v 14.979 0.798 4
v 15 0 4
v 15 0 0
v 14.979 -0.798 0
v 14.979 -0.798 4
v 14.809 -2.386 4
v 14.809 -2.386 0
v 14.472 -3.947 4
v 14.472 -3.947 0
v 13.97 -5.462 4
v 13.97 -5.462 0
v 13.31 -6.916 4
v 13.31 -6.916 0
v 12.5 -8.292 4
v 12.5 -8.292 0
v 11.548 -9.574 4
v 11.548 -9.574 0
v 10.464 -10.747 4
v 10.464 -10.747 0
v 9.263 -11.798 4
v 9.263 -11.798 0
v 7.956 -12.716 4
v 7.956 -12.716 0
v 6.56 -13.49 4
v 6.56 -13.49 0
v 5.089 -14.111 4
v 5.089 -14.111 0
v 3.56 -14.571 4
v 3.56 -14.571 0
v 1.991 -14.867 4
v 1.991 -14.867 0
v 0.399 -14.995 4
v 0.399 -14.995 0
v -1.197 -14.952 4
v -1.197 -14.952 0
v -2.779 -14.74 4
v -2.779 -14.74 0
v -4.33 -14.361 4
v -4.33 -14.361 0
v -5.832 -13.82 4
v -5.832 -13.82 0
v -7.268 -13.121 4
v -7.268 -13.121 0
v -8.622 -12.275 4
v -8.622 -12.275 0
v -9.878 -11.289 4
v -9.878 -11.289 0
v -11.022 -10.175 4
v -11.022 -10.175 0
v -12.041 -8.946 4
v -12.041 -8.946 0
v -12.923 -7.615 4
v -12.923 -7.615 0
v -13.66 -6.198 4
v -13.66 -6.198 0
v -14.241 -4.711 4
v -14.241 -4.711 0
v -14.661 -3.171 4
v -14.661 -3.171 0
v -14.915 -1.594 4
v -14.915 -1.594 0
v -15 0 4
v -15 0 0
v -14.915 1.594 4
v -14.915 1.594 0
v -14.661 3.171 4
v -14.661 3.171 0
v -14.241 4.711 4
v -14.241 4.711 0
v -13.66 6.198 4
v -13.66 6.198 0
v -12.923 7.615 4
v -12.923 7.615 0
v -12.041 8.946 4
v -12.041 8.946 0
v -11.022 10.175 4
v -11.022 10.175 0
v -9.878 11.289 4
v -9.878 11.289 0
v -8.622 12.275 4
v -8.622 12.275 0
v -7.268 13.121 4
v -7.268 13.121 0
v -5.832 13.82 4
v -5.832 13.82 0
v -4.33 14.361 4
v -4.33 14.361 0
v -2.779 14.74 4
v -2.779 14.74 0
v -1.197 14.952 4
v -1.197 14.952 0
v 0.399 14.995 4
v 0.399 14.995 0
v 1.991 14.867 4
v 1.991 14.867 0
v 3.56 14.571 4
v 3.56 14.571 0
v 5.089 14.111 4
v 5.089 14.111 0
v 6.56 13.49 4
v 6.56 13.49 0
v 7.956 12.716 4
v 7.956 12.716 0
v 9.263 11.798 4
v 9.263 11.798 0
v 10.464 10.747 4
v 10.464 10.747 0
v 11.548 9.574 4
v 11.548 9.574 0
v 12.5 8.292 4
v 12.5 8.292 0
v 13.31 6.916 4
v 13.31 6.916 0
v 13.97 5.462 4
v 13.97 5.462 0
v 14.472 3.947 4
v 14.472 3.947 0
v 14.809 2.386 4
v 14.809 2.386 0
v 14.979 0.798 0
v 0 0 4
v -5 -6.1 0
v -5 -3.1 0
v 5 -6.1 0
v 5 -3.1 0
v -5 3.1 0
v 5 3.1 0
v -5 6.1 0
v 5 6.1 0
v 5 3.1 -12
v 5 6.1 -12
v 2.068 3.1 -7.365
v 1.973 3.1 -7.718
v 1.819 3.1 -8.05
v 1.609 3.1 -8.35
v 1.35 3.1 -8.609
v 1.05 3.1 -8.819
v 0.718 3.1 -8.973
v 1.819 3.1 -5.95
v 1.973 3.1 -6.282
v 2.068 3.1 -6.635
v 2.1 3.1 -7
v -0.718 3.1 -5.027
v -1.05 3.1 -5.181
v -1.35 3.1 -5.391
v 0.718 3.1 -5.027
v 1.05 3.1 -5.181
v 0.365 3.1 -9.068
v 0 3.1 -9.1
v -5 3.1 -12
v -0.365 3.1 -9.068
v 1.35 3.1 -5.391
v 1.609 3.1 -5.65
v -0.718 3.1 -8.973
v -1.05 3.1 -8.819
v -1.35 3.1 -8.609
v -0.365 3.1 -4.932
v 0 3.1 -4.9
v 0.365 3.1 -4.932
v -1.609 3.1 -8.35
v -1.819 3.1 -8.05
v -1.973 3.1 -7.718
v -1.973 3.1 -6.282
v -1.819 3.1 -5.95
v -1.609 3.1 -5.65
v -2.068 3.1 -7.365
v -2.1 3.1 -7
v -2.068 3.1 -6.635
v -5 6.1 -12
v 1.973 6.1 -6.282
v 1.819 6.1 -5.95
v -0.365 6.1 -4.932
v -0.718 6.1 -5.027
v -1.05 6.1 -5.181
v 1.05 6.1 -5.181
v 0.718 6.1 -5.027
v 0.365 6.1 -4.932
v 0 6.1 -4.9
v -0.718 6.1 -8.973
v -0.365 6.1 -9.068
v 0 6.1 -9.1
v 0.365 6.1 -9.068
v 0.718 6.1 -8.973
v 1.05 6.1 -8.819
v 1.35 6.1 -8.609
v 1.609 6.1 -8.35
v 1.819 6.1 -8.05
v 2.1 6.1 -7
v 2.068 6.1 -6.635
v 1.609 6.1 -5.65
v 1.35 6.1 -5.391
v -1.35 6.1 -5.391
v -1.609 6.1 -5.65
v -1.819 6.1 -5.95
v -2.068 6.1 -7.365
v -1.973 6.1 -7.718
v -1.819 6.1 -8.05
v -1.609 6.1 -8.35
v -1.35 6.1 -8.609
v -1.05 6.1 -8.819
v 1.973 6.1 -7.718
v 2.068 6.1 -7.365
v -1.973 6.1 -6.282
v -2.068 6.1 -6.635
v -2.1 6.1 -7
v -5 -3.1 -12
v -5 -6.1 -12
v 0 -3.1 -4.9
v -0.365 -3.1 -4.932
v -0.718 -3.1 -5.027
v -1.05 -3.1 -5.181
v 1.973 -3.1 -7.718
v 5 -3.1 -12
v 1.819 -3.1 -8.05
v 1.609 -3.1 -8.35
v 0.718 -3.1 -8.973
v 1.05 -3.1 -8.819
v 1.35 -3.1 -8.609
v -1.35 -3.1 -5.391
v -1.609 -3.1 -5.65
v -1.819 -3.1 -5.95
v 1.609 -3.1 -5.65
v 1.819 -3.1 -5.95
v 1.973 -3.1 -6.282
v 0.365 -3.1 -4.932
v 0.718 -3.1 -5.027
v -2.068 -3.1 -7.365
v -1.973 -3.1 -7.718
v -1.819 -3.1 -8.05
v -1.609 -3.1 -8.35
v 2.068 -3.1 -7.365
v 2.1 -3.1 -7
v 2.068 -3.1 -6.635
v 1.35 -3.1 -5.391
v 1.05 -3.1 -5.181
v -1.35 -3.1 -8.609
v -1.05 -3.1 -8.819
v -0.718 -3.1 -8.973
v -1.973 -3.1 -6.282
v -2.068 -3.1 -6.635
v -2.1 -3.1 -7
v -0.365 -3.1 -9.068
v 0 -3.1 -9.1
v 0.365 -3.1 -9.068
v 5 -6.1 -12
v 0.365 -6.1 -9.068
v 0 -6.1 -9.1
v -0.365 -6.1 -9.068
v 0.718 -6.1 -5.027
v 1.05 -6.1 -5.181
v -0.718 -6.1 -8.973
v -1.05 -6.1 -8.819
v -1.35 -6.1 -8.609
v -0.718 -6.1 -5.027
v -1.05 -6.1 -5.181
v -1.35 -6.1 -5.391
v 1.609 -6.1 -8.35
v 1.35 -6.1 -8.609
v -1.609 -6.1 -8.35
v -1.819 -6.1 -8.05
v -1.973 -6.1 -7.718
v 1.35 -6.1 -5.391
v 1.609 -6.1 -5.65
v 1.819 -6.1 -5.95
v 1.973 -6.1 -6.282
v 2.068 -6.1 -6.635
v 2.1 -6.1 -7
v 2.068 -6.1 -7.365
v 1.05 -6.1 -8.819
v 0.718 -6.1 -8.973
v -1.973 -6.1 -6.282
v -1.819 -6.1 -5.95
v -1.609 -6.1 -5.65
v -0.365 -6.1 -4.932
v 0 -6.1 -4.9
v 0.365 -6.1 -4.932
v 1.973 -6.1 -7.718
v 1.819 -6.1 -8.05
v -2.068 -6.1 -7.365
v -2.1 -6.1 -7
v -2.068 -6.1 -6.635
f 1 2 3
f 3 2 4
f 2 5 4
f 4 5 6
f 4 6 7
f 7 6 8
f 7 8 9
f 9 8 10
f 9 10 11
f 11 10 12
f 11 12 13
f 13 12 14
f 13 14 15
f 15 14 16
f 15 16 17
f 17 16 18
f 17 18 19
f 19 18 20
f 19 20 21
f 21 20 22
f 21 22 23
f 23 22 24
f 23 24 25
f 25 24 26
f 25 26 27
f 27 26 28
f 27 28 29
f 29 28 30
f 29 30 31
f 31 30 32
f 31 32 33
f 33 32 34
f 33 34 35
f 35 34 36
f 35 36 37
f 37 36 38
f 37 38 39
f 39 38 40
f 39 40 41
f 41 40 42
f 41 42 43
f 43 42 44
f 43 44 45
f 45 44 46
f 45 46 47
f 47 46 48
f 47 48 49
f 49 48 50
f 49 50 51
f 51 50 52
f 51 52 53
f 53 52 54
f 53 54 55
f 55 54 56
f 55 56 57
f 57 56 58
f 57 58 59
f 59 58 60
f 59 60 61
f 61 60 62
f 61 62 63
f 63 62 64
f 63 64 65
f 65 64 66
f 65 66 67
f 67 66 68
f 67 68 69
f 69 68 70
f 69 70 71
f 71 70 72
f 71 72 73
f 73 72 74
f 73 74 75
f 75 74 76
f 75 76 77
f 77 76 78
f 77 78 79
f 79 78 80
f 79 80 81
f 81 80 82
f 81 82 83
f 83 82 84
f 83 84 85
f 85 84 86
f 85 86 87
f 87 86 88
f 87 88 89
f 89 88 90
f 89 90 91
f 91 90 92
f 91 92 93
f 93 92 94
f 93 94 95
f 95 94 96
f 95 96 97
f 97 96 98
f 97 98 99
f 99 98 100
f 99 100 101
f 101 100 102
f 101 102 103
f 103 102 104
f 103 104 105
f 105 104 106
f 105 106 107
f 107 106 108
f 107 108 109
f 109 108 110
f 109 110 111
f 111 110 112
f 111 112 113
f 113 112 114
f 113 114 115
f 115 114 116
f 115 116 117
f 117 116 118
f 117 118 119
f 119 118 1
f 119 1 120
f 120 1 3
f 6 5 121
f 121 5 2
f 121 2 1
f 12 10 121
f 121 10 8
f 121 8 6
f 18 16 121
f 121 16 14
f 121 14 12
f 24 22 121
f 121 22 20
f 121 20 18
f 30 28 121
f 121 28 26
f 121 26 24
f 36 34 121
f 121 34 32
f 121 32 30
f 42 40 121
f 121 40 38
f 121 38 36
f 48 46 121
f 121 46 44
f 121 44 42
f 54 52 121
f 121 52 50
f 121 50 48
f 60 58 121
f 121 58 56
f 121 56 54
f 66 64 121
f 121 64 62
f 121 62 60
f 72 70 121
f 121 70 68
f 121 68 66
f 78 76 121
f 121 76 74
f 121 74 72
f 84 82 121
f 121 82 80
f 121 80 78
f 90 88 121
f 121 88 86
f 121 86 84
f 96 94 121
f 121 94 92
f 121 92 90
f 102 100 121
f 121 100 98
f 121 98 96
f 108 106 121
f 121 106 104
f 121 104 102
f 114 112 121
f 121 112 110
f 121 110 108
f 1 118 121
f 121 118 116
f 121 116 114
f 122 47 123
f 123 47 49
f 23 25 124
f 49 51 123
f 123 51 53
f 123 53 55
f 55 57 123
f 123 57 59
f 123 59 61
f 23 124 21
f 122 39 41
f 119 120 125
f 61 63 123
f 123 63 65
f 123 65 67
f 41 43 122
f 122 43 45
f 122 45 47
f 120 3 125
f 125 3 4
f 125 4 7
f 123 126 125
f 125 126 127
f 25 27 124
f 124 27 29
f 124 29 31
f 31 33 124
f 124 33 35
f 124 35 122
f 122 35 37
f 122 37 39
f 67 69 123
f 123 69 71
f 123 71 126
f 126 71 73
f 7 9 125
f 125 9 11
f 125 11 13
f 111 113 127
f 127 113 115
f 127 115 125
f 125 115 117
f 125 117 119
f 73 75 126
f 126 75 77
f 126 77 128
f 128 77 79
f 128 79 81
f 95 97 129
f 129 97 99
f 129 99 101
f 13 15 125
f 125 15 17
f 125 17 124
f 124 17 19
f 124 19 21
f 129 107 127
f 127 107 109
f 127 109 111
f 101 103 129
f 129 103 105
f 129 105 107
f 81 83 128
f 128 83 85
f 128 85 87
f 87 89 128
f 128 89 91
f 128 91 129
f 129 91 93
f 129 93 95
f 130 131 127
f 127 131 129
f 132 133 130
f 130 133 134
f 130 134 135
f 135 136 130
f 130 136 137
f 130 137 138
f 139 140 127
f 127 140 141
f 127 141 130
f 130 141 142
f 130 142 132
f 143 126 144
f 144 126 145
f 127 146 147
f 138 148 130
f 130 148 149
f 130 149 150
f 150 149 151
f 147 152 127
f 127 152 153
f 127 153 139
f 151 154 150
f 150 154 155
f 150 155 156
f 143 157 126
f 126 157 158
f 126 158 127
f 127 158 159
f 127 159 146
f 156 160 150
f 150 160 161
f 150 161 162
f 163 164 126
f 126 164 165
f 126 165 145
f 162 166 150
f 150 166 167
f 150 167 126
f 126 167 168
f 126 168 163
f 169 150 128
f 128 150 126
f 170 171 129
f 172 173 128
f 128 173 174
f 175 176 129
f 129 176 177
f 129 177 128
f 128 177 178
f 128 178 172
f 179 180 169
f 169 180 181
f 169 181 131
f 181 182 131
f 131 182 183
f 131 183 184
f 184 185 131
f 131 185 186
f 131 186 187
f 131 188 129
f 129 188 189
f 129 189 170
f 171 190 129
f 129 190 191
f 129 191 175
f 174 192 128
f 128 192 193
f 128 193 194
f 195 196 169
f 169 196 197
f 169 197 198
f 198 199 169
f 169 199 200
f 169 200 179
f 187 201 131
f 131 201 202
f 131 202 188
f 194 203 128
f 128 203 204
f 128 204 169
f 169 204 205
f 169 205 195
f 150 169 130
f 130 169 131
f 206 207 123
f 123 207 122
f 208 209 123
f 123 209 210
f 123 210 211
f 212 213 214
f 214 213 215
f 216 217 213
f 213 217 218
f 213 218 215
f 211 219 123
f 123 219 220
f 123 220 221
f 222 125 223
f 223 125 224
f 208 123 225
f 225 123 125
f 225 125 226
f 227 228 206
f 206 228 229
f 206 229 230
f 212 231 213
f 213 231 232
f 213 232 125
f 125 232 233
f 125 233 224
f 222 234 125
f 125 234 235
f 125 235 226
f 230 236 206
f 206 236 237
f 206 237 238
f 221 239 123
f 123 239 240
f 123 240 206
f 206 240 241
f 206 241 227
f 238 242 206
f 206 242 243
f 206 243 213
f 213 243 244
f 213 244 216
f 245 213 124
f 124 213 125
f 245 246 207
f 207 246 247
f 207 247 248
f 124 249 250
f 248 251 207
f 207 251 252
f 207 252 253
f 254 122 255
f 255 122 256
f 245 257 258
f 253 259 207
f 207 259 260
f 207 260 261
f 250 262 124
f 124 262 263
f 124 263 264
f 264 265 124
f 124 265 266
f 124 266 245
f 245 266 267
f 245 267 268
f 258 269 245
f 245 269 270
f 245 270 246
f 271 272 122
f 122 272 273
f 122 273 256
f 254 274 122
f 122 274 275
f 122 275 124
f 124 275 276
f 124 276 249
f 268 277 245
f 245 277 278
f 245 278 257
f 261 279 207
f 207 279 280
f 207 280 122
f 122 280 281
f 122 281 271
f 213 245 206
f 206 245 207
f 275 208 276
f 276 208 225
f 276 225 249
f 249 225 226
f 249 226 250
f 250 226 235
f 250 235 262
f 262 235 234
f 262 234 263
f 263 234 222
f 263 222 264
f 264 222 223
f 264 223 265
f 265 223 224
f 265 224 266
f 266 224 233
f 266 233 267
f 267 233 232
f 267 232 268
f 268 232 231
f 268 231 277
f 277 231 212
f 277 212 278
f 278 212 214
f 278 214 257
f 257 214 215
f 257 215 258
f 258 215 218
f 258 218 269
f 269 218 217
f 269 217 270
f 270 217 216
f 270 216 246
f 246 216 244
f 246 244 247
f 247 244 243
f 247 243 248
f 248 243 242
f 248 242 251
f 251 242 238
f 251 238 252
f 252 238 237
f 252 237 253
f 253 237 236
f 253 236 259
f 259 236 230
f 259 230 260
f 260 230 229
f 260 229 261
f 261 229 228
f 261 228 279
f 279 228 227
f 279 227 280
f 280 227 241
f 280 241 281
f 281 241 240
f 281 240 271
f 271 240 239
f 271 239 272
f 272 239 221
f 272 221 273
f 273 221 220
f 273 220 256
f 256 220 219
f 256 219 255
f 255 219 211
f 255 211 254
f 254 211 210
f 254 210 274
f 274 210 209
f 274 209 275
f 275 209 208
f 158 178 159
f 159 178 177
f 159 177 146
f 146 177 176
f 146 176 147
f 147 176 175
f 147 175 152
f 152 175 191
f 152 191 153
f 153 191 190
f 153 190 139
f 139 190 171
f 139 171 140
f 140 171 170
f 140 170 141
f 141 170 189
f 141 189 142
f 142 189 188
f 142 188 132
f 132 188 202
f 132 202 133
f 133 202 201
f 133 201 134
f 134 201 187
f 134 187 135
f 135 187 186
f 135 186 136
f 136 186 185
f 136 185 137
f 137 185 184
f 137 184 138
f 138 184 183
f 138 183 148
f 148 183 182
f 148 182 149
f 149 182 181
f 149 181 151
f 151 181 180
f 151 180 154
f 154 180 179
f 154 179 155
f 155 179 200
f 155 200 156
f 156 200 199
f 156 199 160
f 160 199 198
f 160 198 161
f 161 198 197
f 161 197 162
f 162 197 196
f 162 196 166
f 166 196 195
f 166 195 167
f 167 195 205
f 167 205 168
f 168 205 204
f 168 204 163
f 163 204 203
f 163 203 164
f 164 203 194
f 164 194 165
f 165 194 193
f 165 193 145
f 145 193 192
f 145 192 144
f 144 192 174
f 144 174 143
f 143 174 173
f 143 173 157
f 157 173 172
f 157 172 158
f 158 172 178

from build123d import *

# Parameters (mm, degrees)
SKETCH_1_R          = 15
EXTRUDE_1_DEPTH     = 4
SKETCH_2_W          = 10
SKETCH_2_H          = 3
EXTRUDE_2_DEPTH     = 12
SKETCH_3_R          = 2.1
CUT_EXTRUDE_1_DEPTH = 16


with BuildPart() as part:
    # 草图1 → 凸台-拉伸1 (new body)
    with BuildSketch(Plane.XY):
        Circle(SKETCH_1_R)
    extrude(amount=EXTRUDE_1_DEPTH)

    # 草图2 → 凸台-拉伸2 (add)
    with BuildSketch(Plane.XY):
        with Locations((0, -4.6)):
            Rectangle(SKETCH_2_W, SKETCH_2_H)
        with Locations((0, 4.6)):
            Rectangle(SKETCH_2_W, SKETCH_2_H)
    extrude(amount=-EXTRUDE_2_DEPTH)

    # 草图3 → 切除-拉伸1 (cut)
    with BuildSketch(Plane(origin=(0, 6.1, 0), x_dir=(1, 0, 0), z_dir=(0, 1, 0))):
        with Locations(Location((0, 7, 0), (0, 0, 270))):
            Circle(SKETCH_3_R)
    extrude(amount=-CUT_EXTRUDE_1_DEPTH, mode=Mode.SUBTRACT)


solid = part.part
